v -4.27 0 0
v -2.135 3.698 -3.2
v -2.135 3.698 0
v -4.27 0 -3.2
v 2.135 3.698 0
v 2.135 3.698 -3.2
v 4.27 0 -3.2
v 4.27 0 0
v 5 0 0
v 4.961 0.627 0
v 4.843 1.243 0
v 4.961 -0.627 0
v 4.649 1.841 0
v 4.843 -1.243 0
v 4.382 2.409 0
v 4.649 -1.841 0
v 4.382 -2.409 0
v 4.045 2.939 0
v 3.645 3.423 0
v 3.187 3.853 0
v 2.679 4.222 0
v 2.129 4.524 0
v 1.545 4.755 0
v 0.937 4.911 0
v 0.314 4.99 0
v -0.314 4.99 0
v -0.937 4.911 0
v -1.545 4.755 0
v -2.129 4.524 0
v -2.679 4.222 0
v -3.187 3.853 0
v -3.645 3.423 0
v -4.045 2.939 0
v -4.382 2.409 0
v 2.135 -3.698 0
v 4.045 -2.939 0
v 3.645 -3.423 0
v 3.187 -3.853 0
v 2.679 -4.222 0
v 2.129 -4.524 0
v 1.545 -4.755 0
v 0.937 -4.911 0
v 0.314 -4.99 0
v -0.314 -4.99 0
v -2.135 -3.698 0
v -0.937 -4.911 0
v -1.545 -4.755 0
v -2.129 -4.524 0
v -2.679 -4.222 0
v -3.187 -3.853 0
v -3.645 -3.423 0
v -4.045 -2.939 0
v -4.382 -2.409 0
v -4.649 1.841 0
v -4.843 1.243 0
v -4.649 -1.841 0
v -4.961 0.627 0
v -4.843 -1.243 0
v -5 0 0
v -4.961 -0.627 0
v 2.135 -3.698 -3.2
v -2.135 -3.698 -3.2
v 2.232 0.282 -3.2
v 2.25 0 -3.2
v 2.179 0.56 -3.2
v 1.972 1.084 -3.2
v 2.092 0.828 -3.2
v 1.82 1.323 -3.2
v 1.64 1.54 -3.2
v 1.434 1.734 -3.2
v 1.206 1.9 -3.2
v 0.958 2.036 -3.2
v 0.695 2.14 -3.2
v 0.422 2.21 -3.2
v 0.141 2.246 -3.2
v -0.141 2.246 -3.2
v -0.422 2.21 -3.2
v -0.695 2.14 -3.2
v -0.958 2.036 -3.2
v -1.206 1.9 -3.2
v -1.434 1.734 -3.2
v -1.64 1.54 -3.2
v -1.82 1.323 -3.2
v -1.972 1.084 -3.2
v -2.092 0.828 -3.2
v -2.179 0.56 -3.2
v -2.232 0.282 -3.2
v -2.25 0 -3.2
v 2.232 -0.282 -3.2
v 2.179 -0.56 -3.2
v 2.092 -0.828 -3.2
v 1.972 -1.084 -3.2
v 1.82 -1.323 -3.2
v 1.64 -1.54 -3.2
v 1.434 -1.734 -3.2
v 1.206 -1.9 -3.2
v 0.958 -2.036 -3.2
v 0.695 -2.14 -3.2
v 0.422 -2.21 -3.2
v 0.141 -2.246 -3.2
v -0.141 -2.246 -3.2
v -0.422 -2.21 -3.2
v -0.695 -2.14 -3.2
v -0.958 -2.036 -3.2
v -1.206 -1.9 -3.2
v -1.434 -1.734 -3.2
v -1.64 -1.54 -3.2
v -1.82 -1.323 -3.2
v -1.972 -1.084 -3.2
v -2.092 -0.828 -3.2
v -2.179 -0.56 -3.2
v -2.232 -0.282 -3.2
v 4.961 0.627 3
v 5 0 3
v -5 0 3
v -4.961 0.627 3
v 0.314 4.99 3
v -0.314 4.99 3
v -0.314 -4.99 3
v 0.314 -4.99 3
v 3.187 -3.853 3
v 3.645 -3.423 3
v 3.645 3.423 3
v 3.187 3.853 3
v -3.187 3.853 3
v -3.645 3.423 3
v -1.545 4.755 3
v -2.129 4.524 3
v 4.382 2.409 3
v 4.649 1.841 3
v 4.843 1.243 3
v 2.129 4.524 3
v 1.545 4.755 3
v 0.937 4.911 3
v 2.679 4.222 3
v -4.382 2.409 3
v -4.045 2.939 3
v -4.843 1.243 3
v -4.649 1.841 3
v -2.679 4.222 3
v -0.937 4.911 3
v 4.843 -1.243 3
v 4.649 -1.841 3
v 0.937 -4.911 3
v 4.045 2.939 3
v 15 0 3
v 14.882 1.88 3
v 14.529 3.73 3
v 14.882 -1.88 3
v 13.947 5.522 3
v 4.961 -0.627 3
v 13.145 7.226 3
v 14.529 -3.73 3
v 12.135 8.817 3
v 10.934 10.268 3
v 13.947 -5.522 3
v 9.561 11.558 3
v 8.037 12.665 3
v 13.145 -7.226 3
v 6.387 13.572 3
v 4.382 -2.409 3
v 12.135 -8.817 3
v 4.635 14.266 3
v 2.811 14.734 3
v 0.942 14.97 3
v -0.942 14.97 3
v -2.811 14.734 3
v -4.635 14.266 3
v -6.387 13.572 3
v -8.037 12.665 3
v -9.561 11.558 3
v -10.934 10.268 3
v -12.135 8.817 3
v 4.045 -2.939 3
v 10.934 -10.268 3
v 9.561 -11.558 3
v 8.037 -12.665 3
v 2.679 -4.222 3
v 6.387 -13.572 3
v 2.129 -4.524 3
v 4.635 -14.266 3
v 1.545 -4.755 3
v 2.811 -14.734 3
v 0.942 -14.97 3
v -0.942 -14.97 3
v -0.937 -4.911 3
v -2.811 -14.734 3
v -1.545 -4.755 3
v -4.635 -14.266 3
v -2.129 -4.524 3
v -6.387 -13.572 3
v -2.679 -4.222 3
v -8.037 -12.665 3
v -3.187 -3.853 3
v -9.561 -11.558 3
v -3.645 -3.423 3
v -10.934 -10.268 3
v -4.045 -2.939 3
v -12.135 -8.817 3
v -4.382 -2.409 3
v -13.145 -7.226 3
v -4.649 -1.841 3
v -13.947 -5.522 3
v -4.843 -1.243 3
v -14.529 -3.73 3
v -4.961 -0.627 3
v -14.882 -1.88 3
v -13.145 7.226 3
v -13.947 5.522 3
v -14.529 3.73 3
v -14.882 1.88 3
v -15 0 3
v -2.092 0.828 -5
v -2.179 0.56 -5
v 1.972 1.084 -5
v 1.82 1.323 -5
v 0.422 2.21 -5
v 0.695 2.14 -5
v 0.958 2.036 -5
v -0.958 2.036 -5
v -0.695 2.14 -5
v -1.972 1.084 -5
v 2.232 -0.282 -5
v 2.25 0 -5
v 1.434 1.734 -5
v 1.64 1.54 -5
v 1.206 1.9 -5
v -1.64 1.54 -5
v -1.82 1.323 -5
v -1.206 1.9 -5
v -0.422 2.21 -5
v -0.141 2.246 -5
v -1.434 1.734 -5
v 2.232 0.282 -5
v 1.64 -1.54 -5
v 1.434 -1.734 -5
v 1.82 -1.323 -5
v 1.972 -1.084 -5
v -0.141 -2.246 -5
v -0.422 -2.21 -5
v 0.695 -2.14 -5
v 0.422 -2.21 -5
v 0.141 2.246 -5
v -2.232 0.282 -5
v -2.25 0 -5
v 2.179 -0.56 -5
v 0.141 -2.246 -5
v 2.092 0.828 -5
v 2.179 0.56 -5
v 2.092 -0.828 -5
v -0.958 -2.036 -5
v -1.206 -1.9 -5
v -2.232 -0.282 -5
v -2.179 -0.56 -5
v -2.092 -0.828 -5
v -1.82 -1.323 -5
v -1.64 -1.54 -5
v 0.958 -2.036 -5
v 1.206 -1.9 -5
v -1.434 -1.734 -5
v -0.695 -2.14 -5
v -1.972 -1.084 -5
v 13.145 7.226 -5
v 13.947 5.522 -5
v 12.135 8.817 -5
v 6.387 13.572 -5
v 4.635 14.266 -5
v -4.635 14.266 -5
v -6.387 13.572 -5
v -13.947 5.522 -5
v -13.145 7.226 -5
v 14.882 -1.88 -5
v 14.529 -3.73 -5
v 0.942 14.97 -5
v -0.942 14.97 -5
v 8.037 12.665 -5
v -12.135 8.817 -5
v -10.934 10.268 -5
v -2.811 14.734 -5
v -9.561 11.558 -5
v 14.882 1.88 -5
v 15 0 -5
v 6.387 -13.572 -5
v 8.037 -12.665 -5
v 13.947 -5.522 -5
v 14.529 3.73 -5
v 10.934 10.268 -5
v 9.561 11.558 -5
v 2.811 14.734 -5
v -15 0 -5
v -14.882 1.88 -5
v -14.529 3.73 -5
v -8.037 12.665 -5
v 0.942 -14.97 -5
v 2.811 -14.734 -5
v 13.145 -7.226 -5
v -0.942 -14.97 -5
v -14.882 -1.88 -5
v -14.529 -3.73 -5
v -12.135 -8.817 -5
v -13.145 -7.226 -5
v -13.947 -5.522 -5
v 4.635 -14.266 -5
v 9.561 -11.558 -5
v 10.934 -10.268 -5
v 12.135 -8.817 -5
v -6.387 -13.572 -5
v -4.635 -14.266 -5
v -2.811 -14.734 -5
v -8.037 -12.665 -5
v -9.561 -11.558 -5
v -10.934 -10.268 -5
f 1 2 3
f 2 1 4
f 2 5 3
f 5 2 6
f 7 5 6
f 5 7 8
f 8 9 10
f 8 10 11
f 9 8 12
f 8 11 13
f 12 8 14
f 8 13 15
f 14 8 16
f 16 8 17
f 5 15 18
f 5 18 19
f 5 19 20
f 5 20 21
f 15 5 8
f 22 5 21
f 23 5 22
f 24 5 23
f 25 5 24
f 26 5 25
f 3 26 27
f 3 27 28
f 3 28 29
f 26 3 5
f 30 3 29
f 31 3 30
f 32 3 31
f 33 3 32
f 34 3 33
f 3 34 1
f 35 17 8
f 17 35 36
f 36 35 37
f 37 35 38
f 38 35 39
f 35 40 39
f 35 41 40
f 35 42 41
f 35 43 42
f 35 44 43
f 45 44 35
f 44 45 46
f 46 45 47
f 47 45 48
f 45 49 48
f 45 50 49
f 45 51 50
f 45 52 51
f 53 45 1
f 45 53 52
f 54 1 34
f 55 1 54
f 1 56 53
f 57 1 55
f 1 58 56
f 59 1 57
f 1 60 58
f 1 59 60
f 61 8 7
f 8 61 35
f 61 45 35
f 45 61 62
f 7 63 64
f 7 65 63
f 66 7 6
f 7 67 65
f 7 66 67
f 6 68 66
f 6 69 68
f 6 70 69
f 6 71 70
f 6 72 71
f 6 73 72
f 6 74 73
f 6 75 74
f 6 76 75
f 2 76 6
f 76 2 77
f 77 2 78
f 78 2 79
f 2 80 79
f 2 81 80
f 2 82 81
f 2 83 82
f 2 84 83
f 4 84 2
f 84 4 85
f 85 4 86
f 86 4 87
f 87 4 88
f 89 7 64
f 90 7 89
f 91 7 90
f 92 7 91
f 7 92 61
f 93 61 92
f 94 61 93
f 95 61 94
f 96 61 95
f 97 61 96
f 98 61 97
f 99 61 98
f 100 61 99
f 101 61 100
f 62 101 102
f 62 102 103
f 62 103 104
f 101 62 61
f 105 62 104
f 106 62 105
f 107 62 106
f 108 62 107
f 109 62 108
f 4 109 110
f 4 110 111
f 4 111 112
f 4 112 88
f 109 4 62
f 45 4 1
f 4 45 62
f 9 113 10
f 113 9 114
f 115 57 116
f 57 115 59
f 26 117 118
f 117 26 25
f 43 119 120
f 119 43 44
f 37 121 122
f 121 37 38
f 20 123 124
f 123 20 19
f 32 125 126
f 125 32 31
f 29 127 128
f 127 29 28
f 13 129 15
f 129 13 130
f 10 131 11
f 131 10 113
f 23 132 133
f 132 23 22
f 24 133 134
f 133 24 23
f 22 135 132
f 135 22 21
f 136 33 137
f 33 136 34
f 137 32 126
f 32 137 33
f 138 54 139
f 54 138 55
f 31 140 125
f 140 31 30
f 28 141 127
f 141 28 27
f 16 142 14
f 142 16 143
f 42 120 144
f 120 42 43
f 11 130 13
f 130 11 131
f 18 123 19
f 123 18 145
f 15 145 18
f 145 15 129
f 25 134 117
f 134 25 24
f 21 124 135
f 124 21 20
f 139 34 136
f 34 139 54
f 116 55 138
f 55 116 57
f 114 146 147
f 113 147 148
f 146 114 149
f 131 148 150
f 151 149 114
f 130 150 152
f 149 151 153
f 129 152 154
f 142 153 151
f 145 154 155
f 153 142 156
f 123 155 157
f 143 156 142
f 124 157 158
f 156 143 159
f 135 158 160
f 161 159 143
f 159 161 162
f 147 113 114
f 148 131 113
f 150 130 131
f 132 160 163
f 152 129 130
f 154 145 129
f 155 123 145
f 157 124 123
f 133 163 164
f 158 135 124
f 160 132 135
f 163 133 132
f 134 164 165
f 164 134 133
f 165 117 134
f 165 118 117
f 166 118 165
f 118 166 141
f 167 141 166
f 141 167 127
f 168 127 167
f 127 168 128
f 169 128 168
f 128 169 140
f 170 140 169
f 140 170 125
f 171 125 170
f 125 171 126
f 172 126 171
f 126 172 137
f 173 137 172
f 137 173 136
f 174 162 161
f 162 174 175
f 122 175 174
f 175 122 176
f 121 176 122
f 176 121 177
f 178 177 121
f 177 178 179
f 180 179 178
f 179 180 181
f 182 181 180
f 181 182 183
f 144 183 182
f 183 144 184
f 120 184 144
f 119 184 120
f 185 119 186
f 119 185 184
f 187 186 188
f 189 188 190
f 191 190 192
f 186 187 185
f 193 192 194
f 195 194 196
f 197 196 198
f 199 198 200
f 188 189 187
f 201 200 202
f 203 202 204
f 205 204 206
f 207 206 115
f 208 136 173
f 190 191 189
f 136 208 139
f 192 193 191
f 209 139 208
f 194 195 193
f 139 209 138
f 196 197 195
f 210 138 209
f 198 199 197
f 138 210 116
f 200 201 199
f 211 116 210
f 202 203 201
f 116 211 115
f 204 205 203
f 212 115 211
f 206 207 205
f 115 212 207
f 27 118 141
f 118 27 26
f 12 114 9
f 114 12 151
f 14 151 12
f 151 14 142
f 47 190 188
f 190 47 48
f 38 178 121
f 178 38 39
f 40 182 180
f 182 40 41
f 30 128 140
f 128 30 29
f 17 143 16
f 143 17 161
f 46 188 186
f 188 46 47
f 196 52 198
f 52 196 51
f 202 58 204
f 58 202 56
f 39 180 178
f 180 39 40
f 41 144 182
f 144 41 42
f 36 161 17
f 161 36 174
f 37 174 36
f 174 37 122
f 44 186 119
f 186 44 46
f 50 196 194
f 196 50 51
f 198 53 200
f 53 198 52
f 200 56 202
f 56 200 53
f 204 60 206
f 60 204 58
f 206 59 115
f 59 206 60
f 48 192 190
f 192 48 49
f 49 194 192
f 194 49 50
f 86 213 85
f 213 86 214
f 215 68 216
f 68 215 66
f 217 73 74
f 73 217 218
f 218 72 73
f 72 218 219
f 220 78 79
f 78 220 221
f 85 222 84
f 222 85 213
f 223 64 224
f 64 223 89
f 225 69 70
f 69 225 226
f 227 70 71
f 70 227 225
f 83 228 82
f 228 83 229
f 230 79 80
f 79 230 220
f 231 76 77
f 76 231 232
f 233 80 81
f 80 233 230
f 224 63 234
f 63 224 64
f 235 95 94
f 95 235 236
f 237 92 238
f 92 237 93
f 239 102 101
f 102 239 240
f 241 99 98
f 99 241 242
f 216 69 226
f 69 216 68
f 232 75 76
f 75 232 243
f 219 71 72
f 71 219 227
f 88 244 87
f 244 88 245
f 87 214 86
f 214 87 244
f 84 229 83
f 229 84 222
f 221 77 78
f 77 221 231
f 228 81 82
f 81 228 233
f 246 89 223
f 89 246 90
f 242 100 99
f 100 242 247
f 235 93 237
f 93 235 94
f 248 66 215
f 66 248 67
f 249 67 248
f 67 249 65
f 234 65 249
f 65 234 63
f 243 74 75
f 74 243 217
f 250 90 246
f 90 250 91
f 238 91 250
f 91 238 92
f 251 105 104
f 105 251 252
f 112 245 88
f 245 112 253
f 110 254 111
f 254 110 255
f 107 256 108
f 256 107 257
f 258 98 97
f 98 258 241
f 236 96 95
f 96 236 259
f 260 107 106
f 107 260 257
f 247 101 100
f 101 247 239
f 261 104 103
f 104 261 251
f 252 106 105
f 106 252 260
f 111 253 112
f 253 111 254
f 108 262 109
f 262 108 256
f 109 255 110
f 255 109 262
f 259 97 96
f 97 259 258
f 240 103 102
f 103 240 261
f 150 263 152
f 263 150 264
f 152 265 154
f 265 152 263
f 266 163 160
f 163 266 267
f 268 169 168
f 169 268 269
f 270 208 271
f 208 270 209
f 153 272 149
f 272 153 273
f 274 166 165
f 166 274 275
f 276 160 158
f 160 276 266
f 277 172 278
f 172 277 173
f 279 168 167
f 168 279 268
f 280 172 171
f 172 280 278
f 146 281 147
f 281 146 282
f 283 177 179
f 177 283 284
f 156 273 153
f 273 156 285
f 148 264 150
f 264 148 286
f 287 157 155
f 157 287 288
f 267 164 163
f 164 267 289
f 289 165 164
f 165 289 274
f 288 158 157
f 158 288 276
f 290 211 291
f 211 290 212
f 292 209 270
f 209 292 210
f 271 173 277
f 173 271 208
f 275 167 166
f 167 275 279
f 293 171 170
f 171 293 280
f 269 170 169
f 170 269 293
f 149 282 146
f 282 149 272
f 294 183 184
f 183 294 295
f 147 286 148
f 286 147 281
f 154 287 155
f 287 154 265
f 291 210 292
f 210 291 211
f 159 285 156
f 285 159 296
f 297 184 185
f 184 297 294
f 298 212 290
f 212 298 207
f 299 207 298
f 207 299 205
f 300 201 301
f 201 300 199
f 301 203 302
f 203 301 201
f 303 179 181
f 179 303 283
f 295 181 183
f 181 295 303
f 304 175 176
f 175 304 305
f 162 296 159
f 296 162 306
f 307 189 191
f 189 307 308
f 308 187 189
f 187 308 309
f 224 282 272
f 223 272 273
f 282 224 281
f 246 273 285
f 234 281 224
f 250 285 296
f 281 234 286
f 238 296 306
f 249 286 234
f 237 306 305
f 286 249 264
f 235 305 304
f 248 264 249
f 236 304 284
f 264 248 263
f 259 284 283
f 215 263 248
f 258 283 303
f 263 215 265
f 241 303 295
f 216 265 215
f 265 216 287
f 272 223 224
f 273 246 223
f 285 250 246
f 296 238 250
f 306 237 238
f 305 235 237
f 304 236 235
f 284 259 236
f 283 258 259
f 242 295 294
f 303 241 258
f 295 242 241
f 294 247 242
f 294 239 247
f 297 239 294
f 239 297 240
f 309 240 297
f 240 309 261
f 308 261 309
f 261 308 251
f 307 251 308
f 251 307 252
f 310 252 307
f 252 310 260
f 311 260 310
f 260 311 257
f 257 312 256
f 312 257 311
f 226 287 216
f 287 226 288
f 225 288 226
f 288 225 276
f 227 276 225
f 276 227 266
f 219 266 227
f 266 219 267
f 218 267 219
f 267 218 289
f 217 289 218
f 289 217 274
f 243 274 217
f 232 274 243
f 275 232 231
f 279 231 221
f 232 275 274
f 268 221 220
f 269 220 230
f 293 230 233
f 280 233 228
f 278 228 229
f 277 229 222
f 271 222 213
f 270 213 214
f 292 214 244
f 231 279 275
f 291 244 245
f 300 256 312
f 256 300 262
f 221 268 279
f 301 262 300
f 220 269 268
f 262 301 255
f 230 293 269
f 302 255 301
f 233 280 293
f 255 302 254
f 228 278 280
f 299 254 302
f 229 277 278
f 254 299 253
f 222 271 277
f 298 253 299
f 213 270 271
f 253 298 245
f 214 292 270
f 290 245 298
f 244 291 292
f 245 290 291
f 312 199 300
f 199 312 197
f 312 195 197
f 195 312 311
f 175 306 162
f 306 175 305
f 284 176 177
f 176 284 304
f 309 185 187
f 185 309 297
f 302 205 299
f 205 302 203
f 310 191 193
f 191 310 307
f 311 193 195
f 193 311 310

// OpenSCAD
$fn = 50;

difference() {
	union() {
		translate(v = [0, 0, -5.0]) {
			cylinder(h = 8.0, r = 15.0);
		}
	}
	union() {
		translate(v = [0, 0, 0]) {
			rotate(a = [0, 0, 0]) {
				difference() {
					union() {
						translate(v = [0, 0, -3.2]) {
							linear_extrude(height = 3.2) {
								polygon(points = [[4.2698, 0.0], [2.1349000000000005, 3.697755269078796], [-2.134899999999999, 3.6977552690787965], [-4.2698, 5.228996902999369e-16], [-2.134900000000002, -3.6977552690787956], [2.1348999999999974, -3.697755269078798]]);
							}
						}
					}
					union();
				}
			}
		}
		#cylinder(h = 3, r = 5.0);
		#translate(v = [0, 0, -100.0]) {
			cylinder(h = 200, r = 2.25);
		}
	}
}
